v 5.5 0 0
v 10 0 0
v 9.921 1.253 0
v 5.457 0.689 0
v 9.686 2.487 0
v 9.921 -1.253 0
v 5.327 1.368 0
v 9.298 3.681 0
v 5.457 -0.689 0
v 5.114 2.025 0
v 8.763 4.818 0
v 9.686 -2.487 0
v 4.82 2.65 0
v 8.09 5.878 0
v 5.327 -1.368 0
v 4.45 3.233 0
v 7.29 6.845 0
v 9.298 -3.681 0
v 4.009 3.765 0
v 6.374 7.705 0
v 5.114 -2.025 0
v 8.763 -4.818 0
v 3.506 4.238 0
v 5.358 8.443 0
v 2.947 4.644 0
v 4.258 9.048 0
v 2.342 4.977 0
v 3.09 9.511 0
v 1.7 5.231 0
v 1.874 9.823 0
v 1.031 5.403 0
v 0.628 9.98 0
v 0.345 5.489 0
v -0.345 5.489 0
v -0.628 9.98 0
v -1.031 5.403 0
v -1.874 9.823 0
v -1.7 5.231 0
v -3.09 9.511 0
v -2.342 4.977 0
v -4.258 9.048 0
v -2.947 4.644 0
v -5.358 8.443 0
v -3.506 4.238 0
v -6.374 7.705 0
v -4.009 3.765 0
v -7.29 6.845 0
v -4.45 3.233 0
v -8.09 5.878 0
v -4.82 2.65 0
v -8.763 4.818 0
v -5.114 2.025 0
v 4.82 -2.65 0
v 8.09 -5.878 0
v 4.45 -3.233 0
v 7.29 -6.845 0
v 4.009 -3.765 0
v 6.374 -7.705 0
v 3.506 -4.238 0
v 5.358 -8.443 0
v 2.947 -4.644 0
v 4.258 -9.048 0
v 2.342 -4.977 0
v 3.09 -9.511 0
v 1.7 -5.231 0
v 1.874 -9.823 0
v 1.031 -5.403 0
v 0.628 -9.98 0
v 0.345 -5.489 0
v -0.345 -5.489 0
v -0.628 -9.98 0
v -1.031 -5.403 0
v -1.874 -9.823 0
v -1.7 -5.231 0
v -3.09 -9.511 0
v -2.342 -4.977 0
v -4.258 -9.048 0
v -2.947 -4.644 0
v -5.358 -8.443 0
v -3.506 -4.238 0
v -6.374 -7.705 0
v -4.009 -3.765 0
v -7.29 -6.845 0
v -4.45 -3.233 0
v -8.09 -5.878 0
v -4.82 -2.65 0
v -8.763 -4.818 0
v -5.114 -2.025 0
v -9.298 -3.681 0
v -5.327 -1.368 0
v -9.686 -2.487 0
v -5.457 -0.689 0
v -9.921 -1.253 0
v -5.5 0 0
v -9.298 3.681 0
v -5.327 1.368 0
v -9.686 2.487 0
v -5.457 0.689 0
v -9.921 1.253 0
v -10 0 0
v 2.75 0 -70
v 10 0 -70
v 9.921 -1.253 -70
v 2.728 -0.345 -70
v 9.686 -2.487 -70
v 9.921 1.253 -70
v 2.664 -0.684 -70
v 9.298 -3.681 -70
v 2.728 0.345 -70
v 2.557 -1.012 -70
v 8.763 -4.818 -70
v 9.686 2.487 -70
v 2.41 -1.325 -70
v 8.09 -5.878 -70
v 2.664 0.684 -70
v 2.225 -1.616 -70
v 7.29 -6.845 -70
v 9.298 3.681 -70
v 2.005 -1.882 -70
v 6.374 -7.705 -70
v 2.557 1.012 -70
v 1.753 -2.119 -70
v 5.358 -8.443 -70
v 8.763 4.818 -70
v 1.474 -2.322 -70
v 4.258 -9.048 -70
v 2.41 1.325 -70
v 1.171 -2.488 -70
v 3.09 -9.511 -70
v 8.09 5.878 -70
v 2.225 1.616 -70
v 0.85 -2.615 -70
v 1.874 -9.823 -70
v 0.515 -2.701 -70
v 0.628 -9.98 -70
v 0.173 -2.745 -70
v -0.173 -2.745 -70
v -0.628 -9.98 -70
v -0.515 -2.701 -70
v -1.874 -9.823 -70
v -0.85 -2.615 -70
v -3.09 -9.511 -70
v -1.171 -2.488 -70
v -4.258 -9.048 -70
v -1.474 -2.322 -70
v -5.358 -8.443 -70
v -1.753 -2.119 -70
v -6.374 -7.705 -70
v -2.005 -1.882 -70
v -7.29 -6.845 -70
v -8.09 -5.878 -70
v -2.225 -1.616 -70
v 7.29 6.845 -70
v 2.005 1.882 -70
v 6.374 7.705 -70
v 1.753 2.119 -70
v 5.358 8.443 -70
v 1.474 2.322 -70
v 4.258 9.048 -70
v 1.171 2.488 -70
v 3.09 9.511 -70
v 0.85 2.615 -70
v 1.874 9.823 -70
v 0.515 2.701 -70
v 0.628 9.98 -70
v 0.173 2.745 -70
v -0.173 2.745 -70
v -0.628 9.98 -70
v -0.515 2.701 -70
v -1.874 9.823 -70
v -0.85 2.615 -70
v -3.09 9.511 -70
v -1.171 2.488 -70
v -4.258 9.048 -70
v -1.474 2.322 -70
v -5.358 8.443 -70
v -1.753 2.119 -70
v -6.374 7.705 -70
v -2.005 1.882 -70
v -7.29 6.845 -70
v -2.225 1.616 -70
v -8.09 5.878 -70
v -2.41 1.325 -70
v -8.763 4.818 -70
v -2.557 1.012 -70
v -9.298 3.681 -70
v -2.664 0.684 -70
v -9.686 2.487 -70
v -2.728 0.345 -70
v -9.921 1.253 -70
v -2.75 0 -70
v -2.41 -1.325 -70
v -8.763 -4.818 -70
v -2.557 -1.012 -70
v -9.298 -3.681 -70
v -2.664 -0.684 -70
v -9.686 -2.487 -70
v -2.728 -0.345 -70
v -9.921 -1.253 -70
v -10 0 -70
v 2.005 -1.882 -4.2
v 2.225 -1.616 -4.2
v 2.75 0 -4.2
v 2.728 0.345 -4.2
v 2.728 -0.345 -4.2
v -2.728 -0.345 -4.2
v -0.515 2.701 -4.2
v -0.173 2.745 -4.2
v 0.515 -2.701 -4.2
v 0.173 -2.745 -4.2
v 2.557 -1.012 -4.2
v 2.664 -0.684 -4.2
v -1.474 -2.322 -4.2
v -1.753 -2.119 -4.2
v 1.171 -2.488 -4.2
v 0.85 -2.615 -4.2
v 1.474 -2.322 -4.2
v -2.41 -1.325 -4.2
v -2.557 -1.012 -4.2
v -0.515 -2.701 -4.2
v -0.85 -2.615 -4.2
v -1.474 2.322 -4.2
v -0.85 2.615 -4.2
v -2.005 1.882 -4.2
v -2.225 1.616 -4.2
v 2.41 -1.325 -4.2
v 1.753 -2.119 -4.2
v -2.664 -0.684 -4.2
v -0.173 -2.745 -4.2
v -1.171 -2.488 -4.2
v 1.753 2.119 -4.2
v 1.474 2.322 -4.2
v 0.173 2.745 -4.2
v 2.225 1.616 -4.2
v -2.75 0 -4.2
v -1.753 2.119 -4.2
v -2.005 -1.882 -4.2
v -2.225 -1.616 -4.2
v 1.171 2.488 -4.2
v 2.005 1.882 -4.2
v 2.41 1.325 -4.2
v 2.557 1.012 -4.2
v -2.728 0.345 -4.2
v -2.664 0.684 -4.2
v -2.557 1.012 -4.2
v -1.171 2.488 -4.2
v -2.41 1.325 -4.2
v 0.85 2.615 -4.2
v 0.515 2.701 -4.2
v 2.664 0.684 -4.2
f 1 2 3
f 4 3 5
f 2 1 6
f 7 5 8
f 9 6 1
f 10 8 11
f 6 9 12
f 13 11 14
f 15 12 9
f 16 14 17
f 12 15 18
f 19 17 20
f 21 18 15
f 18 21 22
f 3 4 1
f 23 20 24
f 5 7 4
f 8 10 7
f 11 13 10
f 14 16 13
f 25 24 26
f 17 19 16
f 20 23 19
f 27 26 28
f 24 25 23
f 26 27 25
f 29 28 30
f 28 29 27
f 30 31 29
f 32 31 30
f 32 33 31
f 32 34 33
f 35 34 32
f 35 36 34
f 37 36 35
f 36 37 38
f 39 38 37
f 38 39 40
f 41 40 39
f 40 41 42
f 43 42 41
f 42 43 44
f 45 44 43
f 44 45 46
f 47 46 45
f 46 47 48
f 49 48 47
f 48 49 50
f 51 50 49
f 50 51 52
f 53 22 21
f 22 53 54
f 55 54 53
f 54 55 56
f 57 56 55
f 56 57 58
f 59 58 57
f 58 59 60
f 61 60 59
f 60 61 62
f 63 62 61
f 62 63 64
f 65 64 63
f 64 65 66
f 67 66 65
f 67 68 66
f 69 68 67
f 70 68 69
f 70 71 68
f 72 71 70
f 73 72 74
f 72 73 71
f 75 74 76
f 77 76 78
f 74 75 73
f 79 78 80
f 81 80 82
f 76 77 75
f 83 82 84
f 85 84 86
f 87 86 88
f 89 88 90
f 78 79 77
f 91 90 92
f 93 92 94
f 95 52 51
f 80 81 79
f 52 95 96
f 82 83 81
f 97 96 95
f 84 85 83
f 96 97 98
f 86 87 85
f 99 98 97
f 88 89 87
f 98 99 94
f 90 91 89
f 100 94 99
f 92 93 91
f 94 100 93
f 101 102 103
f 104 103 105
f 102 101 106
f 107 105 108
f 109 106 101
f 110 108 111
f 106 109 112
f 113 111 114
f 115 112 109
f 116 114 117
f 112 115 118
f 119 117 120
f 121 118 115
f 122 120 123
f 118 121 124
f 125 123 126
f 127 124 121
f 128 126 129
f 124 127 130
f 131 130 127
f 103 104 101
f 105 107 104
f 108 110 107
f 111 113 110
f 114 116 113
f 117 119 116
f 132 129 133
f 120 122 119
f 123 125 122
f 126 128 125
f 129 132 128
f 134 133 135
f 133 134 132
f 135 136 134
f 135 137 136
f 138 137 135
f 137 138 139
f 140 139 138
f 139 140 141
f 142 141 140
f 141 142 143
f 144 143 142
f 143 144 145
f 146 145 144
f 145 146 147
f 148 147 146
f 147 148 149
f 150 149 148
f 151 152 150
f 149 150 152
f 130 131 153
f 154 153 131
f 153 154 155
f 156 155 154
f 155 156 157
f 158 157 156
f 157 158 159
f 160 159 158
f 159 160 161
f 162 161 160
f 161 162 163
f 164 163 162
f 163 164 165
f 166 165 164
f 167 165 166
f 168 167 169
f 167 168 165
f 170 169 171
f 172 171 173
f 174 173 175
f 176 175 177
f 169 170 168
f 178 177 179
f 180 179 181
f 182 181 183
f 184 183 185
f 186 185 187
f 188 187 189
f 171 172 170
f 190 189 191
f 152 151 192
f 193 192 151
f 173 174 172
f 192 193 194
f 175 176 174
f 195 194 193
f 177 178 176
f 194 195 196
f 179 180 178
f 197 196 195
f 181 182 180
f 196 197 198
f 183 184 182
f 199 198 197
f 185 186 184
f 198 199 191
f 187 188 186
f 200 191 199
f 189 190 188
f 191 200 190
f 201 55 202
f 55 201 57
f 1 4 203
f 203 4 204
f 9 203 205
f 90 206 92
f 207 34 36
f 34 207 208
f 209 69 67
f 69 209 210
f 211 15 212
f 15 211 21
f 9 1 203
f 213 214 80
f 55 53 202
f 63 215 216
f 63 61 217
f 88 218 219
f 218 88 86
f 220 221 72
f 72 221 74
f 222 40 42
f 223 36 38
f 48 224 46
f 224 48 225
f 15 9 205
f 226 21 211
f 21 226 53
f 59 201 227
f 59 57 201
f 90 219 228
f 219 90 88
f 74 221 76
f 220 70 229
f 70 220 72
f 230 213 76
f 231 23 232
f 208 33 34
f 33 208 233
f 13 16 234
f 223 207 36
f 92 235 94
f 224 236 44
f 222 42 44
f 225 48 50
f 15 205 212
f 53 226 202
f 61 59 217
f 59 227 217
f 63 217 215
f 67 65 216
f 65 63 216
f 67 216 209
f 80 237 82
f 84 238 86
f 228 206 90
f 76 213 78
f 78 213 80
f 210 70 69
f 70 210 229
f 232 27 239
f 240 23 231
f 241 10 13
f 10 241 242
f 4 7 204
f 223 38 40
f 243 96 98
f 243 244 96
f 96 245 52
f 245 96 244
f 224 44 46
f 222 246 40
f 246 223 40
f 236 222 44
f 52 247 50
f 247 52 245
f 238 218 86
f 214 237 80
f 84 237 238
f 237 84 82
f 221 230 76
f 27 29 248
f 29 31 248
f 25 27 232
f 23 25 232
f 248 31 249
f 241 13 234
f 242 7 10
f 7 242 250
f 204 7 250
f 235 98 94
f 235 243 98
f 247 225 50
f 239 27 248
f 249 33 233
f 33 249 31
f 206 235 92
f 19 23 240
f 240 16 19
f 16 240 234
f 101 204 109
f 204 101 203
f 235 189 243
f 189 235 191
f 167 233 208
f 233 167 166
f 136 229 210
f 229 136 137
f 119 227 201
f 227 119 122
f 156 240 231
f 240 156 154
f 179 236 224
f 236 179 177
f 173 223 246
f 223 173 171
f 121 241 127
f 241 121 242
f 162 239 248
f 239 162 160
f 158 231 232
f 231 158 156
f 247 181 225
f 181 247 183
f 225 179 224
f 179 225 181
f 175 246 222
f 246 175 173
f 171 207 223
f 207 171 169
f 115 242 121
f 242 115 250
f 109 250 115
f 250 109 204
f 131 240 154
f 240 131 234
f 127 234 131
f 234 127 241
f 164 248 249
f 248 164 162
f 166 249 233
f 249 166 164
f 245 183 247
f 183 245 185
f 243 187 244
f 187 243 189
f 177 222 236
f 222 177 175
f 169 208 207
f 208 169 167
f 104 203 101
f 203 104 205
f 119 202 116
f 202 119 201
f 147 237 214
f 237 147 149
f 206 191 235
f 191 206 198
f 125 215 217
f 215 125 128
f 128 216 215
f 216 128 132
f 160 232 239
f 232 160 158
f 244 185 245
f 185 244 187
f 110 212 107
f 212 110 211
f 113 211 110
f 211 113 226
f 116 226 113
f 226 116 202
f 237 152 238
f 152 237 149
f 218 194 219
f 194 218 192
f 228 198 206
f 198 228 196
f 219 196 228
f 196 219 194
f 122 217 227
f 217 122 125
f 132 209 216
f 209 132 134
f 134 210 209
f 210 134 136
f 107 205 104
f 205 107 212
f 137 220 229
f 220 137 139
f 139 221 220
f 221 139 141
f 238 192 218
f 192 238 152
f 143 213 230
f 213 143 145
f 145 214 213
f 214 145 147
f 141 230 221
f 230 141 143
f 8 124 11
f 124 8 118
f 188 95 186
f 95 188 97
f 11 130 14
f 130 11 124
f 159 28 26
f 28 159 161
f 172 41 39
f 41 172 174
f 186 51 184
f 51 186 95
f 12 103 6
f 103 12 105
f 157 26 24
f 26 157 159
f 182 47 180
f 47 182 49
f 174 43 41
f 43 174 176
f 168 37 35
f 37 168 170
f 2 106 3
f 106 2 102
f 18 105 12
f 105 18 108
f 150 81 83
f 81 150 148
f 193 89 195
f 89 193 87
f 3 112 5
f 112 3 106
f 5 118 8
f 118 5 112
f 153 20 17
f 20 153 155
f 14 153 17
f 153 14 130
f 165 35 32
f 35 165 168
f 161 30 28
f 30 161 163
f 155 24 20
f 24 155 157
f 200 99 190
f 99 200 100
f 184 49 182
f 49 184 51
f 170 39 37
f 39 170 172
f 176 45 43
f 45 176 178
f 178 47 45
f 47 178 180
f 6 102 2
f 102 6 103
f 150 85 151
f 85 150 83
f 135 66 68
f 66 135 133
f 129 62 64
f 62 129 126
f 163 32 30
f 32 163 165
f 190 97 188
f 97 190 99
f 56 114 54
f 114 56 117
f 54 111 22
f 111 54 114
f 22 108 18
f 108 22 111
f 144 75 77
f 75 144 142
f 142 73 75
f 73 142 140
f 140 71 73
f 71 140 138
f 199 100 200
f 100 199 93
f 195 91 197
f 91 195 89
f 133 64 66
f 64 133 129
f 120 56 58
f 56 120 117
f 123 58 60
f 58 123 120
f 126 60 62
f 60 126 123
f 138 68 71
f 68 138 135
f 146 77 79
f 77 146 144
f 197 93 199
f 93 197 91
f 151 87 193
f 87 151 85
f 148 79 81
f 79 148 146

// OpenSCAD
$fn = 50;


difference() {
	union() {
		translate(v = [0, 0, -70.0000000000]) {
			cylinder(h = 70, r = 10.0000000000);
		}
		cylinder(h = 0, r = 13.0000000000);
	}
	union() {
		translate(v = [0, 0, 0]) {
			rotate(a = [0, 0, 0]) {
				difference() {
					union() {
						#translate(v = [0, 0, -70.0000000000]) {
							cylinder(h = 70, r = 2.2500000000);
						}
						#translate(v = [0, 0, -4.2000000000]) {
							cylinder(h = 4.2000000000, r = 10.0000000000, r1 = 2.7500000000, r2 = 5.5000000000);
						}
						#translate(v = [0, 0, -70.0000000000]) {
							cylinder(h = 70, r = 2.7500000000);
						}
						#translate(v = [0, 0, -70.0000000000]) {
							cylinder(h = 70, r = 2.2500000000);
						}
					}
					union();
				}
			}
		}
	}
}
